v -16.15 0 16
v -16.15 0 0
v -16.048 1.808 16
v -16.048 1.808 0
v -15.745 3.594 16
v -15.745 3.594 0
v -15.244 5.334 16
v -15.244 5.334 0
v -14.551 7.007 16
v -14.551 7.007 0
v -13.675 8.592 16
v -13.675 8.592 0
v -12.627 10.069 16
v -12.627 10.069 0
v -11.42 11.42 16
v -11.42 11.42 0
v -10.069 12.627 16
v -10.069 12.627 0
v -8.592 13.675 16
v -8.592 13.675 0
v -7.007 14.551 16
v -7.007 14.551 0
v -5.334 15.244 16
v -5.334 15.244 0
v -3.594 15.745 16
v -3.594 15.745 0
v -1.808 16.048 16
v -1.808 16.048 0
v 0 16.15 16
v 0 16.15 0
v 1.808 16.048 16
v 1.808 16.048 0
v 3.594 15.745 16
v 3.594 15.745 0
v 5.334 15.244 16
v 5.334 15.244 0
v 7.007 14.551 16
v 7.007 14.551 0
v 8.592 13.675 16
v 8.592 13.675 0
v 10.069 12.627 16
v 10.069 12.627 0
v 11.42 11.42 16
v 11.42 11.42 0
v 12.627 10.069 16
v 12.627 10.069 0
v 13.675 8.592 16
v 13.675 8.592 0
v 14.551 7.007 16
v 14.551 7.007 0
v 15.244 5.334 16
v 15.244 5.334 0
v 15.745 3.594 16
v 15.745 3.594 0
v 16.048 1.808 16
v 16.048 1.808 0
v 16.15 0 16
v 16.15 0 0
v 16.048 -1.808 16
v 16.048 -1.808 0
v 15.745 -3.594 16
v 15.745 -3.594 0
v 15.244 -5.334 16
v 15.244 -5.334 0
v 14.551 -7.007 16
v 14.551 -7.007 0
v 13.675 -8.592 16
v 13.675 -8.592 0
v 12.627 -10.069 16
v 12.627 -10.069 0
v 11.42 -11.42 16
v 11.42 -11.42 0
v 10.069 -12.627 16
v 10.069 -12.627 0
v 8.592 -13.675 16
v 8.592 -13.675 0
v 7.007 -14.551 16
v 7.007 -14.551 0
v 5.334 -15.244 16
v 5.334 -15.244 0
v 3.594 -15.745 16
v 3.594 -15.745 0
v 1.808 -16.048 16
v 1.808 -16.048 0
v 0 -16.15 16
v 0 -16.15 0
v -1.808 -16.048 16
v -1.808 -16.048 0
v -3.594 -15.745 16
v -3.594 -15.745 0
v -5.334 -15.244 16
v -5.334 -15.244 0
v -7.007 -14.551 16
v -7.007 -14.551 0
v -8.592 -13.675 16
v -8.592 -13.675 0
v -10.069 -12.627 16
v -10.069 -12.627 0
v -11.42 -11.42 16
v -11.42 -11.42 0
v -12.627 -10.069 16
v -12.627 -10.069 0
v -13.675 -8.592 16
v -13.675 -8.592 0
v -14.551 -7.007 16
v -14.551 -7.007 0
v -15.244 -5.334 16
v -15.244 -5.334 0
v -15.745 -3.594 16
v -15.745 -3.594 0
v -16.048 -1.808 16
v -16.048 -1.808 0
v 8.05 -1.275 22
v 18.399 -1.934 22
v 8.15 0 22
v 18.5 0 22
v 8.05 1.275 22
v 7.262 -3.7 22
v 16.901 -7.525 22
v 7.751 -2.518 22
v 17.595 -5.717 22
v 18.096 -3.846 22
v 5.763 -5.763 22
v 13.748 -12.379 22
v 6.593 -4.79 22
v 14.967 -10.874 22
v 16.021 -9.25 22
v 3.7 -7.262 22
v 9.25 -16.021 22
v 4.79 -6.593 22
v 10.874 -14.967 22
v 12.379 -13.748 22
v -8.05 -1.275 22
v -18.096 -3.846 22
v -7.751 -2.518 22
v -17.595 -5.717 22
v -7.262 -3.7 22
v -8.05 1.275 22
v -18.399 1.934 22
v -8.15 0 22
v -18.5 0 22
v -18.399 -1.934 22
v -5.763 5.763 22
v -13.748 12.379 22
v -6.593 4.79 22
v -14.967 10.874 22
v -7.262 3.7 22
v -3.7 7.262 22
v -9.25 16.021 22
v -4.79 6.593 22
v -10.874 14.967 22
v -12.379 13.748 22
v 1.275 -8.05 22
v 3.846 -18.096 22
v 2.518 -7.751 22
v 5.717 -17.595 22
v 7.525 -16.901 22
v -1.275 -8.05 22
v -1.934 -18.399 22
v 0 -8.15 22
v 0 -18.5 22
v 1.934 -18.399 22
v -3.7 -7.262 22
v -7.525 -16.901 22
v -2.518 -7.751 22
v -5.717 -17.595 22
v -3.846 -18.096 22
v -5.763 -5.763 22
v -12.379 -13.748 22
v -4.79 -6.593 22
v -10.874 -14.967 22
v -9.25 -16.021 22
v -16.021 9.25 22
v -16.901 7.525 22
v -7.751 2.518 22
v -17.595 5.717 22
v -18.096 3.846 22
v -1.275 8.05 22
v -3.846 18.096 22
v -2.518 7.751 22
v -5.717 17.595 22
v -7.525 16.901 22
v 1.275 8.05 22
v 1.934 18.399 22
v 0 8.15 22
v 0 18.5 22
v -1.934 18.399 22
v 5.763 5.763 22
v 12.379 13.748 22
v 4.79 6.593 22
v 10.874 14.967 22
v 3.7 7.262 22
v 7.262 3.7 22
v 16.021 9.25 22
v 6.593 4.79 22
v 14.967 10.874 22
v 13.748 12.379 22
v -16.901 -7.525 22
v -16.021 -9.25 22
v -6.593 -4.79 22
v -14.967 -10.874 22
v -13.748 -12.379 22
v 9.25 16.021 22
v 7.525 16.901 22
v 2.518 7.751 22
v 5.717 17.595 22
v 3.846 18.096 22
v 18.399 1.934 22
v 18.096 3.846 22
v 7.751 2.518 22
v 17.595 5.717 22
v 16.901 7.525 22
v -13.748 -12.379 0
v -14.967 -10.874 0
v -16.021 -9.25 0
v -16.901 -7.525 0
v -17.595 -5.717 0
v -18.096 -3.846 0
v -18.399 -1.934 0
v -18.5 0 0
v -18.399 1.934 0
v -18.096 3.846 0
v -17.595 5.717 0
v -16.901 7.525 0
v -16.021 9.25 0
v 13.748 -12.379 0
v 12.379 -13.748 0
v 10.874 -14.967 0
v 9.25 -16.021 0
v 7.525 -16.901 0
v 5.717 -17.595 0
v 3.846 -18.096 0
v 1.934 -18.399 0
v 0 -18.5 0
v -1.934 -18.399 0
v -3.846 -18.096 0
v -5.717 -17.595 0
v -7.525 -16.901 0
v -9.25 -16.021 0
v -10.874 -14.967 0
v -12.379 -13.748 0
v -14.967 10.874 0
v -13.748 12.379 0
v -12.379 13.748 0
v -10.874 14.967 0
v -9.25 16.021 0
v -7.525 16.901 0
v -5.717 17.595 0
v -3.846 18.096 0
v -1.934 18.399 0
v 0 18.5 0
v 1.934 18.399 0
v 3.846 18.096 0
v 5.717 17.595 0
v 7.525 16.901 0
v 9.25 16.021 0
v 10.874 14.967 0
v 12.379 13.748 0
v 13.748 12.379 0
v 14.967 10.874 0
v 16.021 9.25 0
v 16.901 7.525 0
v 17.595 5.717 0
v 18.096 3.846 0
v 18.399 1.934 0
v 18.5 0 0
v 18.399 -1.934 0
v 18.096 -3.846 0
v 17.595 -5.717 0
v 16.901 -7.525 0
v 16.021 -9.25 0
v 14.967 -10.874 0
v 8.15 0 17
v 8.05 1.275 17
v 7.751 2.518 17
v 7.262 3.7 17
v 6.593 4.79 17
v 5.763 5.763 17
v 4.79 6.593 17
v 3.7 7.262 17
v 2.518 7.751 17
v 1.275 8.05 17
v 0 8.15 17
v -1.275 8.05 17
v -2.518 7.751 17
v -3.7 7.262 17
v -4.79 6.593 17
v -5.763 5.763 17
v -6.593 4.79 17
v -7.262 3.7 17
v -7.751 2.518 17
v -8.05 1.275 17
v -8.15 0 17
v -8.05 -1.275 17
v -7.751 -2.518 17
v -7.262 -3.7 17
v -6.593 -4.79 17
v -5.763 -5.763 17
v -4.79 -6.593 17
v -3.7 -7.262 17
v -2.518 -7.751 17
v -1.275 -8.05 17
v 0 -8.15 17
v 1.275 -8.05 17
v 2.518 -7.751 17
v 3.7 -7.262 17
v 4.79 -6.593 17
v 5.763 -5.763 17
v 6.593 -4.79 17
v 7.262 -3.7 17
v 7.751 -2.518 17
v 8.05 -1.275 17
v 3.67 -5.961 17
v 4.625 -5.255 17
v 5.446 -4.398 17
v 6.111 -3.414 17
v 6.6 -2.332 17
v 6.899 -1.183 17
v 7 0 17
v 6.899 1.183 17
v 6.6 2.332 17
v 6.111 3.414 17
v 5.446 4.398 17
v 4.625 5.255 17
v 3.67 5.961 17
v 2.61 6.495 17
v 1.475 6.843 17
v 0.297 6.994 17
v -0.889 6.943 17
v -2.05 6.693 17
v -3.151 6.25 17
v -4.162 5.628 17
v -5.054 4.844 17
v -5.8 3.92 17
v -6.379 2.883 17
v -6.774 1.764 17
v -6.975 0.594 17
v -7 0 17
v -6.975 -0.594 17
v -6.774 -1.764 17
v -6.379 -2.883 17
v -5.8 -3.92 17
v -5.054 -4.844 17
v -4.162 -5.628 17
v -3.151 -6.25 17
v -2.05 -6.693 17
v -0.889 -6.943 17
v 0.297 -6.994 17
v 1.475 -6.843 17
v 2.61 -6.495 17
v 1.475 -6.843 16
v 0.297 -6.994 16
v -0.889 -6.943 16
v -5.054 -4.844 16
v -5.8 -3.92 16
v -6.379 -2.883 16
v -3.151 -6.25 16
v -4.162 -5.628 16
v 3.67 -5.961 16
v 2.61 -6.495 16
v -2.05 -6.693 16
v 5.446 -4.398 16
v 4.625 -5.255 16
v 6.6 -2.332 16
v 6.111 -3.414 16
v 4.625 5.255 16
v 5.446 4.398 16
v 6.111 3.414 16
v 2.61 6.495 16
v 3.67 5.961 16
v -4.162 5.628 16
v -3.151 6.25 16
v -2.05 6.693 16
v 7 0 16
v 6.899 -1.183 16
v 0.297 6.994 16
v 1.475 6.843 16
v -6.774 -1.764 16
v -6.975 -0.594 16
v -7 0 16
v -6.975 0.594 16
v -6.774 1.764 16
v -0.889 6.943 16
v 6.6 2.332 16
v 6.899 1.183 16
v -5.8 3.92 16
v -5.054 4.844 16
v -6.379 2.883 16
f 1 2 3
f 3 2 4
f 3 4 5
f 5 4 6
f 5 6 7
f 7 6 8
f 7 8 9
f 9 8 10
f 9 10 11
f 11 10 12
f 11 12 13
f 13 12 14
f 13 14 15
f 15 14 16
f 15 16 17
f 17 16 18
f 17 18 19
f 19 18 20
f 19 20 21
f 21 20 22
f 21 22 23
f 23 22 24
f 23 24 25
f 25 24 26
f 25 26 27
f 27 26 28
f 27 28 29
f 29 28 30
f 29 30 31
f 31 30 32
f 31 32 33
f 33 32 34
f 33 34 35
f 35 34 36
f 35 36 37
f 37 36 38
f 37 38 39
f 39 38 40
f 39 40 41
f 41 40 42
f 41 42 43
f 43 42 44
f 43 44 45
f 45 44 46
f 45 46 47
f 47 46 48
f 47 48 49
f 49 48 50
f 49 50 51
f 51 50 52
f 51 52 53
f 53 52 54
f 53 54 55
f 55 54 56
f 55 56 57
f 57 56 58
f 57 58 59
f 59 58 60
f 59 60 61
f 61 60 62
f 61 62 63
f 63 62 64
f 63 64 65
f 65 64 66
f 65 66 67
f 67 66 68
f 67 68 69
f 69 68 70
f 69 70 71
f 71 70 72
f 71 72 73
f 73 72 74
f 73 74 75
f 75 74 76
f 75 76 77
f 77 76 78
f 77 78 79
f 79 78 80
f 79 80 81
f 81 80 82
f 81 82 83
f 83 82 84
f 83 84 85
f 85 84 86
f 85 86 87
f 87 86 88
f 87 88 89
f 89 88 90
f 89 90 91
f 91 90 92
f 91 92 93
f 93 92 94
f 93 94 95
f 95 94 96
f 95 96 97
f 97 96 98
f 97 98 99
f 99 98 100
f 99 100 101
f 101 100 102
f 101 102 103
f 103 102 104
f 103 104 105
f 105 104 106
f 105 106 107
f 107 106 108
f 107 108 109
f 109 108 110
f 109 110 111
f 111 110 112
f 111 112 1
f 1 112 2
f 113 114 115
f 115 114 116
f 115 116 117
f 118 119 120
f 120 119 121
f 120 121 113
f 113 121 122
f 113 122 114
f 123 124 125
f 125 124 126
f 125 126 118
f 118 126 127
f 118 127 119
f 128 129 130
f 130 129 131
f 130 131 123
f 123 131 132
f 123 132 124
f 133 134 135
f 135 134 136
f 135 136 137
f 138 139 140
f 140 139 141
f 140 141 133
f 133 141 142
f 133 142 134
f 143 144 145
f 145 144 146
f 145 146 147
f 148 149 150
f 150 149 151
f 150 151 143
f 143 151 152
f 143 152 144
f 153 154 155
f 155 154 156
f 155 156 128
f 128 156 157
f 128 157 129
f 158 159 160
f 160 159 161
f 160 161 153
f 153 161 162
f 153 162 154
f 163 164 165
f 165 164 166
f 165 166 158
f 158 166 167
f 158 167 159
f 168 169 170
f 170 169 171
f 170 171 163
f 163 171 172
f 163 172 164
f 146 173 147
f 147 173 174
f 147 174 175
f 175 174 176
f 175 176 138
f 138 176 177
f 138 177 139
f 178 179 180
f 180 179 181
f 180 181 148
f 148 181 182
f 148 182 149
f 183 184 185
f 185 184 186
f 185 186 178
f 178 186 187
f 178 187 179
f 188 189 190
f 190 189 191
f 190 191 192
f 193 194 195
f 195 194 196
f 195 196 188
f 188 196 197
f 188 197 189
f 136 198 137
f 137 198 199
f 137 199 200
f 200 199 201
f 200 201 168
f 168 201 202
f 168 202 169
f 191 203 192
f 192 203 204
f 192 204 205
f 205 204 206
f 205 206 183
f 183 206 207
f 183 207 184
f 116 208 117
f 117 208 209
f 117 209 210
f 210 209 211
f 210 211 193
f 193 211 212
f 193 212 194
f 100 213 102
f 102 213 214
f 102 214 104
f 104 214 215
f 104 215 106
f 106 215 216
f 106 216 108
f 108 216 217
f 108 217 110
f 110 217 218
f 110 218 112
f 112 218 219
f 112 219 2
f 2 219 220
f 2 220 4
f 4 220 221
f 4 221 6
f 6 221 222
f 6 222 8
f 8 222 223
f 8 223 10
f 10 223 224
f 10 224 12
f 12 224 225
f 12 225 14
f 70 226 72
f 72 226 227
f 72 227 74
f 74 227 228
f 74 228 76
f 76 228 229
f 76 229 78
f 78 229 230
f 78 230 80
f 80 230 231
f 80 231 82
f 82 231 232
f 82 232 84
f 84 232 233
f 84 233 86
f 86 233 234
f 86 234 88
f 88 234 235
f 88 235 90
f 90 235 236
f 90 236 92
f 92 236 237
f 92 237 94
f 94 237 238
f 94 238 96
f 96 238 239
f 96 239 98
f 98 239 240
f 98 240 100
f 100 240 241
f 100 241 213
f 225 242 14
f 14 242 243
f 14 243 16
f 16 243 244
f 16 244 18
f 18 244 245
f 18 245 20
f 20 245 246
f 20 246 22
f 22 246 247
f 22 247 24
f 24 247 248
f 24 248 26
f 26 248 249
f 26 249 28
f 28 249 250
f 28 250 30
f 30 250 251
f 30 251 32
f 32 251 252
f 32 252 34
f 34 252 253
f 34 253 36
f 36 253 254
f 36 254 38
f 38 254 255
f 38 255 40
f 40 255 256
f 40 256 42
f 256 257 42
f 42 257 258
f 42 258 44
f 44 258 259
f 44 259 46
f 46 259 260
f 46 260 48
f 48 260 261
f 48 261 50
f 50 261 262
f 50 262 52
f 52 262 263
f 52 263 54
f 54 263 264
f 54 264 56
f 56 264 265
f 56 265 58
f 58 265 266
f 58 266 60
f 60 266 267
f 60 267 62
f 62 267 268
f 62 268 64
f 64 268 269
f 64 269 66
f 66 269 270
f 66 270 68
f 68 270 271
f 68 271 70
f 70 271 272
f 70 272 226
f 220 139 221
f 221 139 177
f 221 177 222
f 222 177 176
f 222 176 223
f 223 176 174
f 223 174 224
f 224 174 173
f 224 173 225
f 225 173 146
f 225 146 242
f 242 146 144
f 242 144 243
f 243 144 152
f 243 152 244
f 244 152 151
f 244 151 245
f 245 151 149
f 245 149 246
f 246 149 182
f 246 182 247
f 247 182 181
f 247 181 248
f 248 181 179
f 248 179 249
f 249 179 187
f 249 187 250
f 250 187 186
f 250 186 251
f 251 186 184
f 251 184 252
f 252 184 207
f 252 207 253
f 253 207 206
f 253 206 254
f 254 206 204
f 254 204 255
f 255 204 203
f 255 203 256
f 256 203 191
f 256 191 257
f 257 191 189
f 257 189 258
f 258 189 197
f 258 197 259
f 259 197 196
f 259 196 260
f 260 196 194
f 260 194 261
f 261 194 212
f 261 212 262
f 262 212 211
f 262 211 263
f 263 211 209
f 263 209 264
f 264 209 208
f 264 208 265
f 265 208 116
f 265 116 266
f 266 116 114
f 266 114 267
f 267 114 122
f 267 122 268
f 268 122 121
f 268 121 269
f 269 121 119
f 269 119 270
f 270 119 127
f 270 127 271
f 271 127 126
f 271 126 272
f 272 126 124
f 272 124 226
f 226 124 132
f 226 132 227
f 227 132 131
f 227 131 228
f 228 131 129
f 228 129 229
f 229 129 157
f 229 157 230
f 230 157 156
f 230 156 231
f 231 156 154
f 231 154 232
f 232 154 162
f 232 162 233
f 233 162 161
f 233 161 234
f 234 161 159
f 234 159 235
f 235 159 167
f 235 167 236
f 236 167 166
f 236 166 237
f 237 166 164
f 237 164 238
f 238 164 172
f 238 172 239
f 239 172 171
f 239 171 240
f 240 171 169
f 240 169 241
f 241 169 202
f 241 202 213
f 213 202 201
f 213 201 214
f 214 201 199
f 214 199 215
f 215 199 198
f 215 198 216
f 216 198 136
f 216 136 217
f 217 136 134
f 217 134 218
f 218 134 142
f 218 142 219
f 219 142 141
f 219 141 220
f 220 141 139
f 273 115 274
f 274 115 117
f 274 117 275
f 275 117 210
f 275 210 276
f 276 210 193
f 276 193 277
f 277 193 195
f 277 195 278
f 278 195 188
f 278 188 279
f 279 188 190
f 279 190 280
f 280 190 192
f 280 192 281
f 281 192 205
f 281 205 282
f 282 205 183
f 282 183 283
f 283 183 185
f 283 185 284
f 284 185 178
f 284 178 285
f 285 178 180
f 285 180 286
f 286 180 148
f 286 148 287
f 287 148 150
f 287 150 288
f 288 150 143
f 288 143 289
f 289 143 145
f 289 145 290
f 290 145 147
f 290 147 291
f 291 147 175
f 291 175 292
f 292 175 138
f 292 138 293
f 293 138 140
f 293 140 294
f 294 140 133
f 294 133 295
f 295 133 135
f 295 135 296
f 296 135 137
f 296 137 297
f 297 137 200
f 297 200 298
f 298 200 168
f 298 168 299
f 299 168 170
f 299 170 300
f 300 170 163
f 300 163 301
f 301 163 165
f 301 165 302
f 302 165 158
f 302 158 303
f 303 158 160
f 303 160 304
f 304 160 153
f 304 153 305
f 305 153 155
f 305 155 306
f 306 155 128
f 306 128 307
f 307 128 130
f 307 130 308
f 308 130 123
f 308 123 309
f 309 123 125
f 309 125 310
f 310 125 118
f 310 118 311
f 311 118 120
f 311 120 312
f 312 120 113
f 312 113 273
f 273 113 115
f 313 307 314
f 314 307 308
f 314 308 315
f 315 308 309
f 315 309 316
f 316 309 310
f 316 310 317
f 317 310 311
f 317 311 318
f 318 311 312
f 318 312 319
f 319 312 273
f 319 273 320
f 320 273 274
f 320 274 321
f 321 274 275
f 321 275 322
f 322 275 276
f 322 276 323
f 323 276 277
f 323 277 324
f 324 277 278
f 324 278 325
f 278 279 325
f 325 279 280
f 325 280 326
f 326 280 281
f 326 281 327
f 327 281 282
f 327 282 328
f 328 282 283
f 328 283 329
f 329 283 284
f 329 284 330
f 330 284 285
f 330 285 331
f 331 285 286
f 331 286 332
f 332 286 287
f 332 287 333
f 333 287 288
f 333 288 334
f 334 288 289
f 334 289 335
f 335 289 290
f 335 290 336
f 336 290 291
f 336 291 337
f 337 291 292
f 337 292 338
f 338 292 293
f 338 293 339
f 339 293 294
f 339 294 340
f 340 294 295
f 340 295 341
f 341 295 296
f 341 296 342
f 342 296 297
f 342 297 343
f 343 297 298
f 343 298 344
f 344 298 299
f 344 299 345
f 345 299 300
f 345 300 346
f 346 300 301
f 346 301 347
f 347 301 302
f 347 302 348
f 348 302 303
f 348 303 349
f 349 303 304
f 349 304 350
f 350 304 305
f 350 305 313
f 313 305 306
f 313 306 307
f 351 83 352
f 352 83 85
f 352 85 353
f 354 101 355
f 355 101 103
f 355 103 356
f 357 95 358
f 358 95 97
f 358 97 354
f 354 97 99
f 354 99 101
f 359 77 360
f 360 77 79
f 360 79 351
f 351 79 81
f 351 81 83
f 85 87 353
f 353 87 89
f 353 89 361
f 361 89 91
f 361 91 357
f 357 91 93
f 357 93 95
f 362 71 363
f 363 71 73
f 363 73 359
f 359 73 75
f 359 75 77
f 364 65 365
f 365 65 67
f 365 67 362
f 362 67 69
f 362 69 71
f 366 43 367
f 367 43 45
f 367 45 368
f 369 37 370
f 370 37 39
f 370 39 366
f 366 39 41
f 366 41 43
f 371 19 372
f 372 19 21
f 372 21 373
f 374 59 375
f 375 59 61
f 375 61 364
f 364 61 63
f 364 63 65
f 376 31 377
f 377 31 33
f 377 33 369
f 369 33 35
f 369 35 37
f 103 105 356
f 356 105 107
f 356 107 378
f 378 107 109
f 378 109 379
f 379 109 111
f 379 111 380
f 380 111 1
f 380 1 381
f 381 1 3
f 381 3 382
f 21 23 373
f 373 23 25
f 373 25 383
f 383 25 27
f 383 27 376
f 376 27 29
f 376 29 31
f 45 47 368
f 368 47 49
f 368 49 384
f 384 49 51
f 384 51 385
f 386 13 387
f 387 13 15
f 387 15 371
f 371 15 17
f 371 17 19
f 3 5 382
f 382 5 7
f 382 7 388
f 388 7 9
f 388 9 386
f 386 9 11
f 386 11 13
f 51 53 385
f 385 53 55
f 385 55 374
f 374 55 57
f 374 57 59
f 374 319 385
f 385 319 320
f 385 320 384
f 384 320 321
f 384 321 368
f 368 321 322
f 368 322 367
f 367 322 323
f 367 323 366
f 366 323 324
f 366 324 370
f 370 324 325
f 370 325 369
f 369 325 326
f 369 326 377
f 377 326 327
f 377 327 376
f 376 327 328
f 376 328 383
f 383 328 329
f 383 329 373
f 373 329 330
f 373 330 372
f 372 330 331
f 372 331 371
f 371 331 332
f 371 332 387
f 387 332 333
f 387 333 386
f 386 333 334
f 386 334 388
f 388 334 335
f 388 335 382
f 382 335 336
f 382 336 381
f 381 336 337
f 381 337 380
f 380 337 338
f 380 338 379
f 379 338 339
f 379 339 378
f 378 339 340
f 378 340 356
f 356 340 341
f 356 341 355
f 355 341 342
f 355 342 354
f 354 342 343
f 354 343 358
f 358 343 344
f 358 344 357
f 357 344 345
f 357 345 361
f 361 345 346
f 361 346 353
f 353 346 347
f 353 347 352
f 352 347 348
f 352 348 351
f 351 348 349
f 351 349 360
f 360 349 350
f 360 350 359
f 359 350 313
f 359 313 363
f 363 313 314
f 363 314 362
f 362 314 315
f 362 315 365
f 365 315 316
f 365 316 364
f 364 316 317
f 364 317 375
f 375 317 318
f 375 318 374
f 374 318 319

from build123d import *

# Parameters (mm, degrees)
CROQUIS1_R              = 18.5
CROQUIS1_R_2            = 16.15
SALIENTE_EXTRUIR1_DEPTH = 22
SALIENTE_EXTRUIR2_START = -5
CROQUIS2_R              = 16.15
CROQUIS2_R_2            = 8.15
SALIENTE_EXTRUIR2_DEPTH = 5
SALIENTE_EXTRUIR3_START = 1
CROQUIS3_R              = 16.15
CROQUIS3_R_2            = 7
SALIENTE_EXTRUIR3_DEPTH = 1


with BuildPart() as part:
    # Croquis1 → Saliente-Extruir1 (new body)
    with BuildSketch(Plane.XY):
        Circle(CROQUIS1_R)
        Circle(CROQUIS1_R_2, mode=Mode.SUBTRACT)
    extrude(amount=SALIENTE_EXTRUIR1_DEPTH)

    # Croquis2 → Saliente-Extruir2 (add)
    with BuildSketch(Plane.XY.offset(22).offset(SALIENTE_EXTRUIR2_START)):
        Circle(CROQUIS2_R)
        Circle(CROQUIS2_R_2, mode=Mode.SUBTRACT)
    extrude(amount=SALIENTE_EXTRUIR2_DEPTH)

    # Croquis3 → Saliente-Extruir3 (add)
    with BuildSketch(Plane(origin=(0, 0, 17), x_dir=(-1, 0, 0), z_dir=(0, 0, -1)).offset(SALIENTE_EXTRUIR3_START)):
        Circle(CROQUIS3_R)
        Circle(CROQUIS3_R_2, mode=Mode.SUBTRACT)
    extrude(amount=-SALIENTE_EXTRUIR3_DEPTH)


solid = part.part
